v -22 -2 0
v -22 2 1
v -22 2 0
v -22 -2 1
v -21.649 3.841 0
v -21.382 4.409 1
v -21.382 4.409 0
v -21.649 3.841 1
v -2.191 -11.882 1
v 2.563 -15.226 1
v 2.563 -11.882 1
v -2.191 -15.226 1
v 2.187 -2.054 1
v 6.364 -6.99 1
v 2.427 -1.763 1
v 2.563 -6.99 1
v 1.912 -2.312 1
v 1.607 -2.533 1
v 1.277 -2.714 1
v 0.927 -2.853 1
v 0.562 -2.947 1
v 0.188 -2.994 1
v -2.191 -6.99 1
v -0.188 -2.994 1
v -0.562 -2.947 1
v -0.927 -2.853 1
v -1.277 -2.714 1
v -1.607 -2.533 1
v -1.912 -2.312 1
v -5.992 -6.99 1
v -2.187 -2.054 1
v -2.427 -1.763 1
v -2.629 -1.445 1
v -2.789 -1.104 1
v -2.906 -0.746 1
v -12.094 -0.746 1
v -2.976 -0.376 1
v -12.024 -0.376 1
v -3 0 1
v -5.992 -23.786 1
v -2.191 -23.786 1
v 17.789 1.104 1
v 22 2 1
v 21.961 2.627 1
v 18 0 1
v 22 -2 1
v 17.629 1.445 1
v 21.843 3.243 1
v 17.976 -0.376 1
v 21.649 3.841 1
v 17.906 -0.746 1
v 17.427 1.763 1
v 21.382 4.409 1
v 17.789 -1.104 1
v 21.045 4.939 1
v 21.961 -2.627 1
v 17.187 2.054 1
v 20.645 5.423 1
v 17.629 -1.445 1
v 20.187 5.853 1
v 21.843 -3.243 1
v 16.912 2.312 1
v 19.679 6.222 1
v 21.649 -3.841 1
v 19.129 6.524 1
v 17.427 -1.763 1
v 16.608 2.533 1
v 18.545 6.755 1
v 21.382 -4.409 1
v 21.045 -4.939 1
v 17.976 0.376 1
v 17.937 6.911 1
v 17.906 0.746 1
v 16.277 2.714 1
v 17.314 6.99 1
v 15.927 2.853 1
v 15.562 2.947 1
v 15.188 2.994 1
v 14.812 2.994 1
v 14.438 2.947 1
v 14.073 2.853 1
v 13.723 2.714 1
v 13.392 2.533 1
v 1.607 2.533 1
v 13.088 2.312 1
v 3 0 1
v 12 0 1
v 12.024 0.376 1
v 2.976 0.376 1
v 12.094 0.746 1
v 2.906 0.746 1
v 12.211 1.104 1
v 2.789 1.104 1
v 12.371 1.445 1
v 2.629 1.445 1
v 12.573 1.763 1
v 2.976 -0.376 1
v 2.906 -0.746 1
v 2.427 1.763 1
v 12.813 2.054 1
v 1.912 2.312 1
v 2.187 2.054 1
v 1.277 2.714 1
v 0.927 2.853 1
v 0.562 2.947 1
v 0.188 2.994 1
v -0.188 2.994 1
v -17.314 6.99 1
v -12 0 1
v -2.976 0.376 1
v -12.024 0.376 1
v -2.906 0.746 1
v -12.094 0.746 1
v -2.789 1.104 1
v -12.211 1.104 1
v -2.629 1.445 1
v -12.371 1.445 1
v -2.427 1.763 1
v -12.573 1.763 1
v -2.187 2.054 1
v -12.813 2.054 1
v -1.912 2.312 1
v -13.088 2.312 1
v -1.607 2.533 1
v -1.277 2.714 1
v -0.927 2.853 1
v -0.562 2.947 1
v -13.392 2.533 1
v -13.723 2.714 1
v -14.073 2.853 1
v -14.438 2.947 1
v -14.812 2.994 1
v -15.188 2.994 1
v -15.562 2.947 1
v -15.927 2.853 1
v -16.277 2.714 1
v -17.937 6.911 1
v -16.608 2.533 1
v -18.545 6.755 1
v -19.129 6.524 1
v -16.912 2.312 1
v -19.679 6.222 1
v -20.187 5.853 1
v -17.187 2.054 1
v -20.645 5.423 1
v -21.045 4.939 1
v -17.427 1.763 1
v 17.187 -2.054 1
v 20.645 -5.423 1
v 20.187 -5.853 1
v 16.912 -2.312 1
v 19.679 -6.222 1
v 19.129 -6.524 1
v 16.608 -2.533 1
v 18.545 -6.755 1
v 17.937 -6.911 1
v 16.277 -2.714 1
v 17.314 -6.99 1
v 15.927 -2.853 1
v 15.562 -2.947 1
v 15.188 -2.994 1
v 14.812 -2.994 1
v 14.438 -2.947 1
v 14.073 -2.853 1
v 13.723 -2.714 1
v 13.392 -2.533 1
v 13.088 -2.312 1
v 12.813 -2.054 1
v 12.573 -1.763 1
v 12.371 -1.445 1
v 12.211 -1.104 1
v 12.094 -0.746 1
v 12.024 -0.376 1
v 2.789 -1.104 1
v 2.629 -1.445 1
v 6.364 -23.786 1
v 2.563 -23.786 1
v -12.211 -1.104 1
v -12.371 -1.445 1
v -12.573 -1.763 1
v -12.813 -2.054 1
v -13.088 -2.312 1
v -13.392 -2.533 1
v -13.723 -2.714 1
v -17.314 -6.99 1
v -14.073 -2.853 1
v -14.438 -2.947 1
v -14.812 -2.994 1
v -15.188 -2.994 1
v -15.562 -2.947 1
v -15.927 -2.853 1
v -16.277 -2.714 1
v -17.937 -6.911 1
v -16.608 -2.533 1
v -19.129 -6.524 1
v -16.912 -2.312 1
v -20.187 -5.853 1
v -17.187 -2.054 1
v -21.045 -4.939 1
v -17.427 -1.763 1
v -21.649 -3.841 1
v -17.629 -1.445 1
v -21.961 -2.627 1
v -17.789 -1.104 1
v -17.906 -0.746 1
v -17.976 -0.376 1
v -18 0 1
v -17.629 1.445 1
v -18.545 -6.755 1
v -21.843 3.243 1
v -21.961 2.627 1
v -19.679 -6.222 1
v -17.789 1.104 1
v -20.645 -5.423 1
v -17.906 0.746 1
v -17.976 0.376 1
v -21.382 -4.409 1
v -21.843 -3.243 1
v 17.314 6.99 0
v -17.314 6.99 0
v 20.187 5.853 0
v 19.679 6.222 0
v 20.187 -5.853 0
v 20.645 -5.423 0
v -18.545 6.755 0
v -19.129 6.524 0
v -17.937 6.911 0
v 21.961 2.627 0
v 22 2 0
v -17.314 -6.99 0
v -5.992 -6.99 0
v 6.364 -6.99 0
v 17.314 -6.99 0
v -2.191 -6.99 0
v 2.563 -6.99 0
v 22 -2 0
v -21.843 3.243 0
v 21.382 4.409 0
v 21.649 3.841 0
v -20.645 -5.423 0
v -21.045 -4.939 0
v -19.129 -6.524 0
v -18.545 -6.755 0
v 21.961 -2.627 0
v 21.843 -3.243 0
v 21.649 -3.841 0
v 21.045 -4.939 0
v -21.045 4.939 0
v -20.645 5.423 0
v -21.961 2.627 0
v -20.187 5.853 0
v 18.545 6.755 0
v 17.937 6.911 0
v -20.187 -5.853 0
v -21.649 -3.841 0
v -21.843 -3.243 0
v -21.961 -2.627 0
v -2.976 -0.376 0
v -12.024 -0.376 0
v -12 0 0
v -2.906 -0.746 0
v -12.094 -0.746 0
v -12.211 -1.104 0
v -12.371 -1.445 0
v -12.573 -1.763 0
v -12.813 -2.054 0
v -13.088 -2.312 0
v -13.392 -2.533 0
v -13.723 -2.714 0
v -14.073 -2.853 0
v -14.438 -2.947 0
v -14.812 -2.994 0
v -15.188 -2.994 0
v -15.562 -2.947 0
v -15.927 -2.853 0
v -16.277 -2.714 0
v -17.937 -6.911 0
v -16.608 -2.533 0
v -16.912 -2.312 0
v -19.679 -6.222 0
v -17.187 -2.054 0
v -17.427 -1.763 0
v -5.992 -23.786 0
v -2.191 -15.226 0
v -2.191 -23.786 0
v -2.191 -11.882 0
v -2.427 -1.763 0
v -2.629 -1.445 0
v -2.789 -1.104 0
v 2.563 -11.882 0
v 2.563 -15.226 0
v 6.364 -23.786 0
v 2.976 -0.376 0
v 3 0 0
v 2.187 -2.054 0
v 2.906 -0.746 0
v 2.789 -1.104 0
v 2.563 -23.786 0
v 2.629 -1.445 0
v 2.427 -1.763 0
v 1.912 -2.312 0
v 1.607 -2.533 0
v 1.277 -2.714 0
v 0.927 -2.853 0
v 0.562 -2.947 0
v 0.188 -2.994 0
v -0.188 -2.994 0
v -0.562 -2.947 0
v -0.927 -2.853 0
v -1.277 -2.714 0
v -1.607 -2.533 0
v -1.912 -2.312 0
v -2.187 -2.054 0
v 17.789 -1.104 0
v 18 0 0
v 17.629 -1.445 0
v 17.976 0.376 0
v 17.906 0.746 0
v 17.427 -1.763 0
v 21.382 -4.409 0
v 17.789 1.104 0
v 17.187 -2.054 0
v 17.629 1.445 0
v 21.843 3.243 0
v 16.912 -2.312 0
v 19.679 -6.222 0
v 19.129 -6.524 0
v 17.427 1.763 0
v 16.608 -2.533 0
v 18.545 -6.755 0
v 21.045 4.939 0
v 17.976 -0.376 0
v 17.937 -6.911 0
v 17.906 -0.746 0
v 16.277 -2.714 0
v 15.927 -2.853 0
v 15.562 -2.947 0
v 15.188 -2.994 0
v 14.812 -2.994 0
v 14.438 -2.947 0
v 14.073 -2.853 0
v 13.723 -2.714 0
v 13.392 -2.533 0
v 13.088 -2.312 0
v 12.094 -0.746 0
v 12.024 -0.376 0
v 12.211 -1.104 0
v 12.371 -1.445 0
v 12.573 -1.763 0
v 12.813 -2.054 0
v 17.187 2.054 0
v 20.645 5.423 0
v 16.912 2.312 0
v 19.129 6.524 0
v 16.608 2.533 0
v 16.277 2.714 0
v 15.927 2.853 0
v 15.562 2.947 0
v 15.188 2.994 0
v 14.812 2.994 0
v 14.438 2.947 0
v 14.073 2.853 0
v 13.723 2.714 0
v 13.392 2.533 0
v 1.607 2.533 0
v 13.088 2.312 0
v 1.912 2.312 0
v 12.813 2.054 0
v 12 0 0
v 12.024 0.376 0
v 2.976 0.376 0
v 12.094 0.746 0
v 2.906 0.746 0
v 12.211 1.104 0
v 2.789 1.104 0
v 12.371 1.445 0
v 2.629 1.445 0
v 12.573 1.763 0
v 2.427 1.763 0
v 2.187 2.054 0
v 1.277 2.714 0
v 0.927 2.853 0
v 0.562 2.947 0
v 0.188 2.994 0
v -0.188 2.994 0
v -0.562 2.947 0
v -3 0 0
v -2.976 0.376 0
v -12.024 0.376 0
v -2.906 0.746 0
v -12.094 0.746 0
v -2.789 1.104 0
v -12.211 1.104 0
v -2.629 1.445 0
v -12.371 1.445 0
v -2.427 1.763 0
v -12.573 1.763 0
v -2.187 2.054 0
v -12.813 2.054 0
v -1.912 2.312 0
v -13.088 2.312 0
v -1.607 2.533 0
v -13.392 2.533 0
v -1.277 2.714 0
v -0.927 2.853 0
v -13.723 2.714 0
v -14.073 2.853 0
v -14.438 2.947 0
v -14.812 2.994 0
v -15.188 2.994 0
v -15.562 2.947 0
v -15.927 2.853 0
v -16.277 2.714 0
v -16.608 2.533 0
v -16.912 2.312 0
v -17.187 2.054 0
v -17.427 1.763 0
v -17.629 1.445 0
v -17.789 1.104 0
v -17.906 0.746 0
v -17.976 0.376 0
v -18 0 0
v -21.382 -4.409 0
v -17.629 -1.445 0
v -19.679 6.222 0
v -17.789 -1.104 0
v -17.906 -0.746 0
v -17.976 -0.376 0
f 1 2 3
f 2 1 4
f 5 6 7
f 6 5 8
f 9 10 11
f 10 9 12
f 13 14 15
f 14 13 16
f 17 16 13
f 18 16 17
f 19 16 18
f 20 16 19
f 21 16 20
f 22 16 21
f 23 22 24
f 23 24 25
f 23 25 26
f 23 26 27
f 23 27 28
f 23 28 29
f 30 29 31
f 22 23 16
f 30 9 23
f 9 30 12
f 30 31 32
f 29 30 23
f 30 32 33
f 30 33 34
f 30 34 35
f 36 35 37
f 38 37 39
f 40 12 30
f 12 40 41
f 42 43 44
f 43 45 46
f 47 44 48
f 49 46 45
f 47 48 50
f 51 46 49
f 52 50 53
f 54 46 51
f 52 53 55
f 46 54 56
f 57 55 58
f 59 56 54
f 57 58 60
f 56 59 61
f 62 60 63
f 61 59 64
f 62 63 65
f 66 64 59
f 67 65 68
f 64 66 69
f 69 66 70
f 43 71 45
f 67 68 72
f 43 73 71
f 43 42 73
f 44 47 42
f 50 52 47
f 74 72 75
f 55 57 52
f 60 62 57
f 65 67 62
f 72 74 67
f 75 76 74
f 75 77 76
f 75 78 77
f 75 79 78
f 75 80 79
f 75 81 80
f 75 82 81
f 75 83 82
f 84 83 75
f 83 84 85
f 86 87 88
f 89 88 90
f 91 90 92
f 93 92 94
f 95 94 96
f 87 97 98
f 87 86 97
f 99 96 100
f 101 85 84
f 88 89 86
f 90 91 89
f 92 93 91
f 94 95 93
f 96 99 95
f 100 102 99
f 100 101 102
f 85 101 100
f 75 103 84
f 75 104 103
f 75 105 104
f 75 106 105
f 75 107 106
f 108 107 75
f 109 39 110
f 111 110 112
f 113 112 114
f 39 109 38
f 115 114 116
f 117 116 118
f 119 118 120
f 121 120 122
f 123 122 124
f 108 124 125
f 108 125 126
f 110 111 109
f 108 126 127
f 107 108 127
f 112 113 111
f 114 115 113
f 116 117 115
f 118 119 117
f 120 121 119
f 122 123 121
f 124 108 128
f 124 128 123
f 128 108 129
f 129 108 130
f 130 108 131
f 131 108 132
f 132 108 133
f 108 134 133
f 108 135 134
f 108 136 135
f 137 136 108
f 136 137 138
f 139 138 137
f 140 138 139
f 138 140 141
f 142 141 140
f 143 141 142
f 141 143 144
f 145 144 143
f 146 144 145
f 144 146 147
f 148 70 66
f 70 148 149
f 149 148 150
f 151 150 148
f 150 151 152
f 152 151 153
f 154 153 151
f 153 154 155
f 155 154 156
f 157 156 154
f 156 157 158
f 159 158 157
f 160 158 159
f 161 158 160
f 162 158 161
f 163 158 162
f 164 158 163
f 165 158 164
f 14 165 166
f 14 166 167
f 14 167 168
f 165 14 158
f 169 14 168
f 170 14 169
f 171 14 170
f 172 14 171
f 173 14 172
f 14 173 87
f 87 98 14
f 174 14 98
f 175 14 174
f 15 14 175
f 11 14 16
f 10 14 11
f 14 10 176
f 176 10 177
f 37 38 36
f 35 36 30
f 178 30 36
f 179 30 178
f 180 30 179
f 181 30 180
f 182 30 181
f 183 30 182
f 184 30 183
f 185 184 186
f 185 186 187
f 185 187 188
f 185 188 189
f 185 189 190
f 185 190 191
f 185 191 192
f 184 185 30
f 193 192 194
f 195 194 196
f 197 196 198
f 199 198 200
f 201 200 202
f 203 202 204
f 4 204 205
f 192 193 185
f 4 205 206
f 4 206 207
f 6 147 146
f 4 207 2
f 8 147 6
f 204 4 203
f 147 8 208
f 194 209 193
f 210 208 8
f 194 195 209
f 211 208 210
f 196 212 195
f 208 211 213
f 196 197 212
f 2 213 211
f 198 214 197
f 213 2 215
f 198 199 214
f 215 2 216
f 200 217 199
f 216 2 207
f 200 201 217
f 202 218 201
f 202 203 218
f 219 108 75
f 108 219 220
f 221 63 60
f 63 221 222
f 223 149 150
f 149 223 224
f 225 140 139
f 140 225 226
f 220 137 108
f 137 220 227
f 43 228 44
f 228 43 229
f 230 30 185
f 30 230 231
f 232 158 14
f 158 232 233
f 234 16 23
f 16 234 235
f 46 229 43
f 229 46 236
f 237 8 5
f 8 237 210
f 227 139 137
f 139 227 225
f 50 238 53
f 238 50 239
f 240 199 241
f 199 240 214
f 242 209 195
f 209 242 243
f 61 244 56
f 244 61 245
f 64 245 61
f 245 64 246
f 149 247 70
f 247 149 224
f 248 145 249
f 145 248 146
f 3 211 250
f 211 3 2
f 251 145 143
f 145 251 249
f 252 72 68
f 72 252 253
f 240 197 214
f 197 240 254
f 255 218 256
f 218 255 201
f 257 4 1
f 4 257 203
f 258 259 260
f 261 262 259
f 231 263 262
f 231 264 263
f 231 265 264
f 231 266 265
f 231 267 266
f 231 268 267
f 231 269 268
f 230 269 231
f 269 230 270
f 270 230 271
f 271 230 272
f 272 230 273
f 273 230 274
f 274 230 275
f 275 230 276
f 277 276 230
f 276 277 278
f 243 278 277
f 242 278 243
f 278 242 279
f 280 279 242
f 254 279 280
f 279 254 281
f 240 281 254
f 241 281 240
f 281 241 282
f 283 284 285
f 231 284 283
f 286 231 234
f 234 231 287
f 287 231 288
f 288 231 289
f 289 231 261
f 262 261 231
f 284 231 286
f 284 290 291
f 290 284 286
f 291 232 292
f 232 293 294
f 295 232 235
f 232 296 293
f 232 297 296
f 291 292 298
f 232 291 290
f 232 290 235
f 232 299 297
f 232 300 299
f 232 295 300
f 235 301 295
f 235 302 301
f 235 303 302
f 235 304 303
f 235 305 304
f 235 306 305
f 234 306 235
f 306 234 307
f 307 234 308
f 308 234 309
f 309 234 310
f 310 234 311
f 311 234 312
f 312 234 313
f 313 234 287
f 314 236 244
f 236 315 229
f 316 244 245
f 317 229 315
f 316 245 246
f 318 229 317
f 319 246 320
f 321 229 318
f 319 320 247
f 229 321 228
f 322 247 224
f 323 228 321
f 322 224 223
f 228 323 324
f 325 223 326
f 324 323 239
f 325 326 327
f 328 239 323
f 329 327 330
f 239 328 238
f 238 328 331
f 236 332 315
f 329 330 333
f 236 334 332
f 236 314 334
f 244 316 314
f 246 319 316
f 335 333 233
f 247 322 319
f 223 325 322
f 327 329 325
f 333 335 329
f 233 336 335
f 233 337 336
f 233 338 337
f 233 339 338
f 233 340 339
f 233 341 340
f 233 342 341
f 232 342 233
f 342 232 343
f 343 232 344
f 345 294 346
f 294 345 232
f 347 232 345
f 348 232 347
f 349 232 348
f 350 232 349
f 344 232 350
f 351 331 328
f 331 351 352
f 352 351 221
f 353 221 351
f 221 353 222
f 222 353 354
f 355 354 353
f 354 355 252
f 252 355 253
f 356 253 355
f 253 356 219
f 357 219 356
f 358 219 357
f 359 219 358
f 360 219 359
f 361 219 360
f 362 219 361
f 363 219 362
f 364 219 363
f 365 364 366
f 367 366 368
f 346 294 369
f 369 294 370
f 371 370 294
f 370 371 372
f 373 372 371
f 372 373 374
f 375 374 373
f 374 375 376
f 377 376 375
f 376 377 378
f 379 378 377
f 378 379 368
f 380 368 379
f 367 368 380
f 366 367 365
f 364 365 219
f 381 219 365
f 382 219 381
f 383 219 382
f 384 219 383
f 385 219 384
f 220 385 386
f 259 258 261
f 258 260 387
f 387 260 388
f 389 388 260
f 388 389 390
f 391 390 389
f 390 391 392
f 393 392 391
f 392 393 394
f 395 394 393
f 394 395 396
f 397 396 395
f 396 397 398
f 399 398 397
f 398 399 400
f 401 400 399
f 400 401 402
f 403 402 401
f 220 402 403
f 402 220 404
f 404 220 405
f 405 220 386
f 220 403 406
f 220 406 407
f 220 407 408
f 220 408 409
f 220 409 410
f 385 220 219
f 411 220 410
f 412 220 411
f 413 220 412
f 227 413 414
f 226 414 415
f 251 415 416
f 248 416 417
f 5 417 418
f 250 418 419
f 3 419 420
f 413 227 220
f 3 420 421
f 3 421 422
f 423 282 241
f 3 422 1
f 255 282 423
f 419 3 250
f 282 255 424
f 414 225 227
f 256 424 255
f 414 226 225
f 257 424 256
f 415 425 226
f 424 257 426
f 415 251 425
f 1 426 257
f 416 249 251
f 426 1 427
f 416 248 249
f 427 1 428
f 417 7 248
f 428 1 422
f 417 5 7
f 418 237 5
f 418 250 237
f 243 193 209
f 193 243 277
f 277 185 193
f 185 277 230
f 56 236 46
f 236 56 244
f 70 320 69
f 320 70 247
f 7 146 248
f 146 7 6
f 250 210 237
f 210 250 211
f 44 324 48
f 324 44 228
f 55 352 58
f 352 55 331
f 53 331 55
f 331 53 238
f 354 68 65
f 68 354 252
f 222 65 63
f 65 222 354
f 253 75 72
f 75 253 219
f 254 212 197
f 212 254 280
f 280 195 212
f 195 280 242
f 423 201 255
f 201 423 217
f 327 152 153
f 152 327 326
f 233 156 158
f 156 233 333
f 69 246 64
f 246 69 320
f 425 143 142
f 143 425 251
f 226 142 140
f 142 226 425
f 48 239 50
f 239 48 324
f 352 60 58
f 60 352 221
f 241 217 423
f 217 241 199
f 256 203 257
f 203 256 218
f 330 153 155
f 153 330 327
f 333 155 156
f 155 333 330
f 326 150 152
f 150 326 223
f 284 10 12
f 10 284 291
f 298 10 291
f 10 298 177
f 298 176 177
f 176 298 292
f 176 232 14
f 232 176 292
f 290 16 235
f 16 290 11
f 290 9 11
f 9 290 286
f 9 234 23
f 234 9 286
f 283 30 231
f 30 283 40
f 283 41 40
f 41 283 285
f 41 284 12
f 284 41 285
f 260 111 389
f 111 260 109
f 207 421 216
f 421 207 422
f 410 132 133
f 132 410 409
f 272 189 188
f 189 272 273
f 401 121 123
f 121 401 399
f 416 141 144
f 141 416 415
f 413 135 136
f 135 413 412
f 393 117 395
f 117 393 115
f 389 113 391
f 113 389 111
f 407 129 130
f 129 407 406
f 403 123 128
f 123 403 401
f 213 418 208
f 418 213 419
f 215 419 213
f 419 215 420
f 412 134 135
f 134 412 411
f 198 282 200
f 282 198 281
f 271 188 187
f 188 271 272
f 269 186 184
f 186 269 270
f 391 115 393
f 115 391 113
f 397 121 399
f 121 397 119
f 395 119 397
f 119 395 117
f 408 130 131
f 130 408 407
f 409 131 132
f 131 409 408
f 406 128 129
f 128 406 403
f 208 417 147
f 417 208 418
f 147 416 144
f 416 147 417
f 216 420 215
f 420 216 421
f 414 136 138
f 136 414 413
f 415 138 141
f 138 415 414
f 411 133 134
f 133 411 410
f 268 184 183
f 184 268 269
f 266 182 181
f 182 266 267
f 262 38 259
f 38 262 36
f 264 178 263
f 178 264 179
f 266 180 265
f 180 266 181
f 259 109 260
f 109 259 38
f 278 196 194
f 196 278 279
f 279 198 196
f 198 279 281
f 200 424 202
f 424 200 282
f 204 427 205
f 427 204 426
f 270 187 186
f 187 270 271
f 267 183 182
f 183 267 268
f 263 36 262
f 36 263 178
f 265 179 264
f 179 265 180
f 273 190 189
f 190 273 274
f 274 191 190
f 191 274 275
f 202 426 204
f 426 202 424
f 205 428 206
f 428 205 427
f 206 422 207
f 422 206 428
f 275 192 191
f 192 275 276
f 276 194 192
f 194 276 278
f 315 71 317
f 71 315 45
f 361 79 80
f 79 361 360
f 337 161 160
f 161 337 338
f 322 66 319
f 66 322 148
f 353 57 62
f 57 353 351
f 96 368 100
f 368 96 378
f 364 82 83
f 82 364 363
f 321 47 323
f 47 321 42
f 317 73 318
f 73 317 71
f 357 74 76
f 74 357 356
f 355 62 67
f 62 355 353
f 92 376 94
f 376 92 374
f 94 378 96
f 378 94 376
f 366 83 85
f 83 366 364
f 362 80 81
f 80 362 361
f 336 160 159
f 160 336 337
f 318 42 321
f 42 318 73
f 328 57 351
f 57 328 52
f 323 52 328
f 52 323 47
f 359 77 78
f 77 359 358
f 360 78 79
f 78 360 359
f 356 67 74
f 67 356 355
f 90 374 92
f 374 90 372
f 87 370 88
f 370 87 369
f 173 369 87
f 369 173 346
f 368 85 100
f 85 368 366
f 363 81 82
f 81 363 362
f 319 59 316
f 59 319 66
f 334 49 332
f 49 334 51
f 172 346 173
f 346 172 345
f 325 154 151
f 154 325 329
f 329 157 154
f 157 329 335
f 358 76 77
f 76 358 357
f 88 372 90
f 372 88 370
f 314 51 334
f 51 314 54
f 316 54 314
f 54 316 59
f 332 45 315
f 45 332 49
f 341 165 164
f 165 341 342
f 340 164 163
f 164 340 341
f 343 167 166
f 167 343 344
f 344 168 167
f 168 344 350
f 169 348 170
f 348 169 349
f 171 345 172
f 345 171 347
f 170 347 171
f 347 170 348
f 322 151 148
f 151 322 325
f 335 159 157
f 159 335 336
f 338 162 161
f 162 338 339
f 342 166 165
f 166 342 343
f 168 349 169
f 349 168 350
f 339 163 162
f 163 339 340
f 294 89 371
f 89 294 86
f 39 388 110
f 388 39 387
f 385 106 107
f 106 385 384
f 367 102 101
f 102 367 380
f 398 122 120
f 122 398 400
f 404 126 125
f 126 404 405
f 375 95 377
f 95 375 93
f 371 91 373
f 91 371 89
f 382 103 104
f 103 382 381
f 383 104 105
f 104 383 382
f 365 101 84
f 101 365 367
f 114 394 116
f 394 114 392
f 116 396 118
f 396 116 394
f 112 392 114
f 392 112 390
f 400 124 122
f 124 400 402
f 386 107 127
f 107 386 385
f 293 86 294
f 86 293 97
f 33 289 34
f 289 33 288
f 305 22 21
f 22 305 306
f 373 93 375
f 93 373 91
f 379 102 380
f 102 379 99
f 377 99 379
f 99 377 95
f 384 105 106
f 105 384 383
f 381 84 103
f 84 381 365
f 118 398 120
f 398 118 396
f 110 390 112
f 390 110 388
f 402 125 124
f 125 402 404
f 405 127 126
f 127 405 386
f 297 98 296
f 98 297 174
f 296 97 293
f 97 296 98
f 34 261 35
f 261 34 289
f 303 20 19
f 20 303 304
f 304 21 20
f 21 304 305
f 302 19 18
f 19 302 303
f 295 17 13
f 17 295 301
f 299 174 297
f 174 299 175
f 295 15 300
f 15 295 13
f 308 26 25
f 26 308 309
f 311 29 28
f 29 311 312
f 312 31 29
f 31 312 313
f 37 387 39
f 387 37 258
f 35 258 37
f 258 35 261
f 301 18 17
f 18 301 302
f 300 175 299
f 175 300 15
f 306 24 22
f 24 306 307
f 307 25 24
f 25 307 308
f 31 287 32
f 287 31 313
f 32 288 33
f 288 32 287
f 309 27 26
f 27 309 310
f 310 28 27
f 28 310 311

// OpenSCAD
$fn = 50;


difference() {
	union() {
		translate(v = [0, 0, 0]) {
			rotate(a = [0, 0, 0]) {
				hull() {
					translate(v = [-17.0000000000, 2.0000000000, 0]) {
						rotate(a = [0, 0, 0]) {
							translate(v = [0, 0, 0]) {
								rotate(a = [0, 0, 0]) {
									cylinder(h = 1, r = 5);
								}
							}
						}
					}
					translate(v = [17.0000000000, 2.0000000000, 0]) {
						rotate(a = [0, 0, 0]) {
							translate(v = [0, 0, 0]) {
								rotate(a = [0, 0, 0]) {
									cylinder(h = 1, r = 5);
								}
							}
						}
					}
					translate(v = [-17.0000000000, -2.0000000000, 0]) {
						rotate(a = [0, 0, 0]) {
							translate(v = [0, 0, 0]) {
								rotate(a = [0, 0, 0]) {
									cylinder(h = 1, r = 5);
								}
							}
						}
					}
					translate(v = [17.0000000000, -2.0000000000, 0]) {
						rotate(a = [0, 0, 0]) {
							translate(v = [0, 0, 0]) {
								rotate(a = [0, 0, 0]) {
									cylinder(h = 1, r = 5);
								}
							}
						}
					}
				}
			}
		}
		translate(v = [0, -5, 0]) {
			rotate(a = [0, 0, 0]) {
				linear_extrude(height = 1) {
					text(font = "DejaVu Sans Mono:style=Bold", halign = "center", size = 19.0000000000, text = "H", valign = "top");
				}
			}
		}
	}
	union() {
		translate(v = [-15.0000000000, 0.0000000000, -125.0000000000]) {
			rotate(a = [0, 0, 0]) {
				cylinder(h = 250, r = 3.0000000000);
			}
		}
		translate(v = [15.0000000000, 0.0000000000, -125.0000000000]) {
			rotate(a = [0, 0, 0]) {
				cylinder(h = 250, r = 3.0000000000);
			}
		}
		translate(v = [15.0000000000, 0.0000000000, -125.0000000000]) {
			rotate(a = [0, 0, 0]) {
				cylinder(h = 250, r = 3.0000000000);
			}
		}
		translate(v = [0, 0, -125.0000000000]) {
			rotate(a = [0, 0, 0]) {
				cylinder(h = 250, r = 3.0000000000);
			}
		}
	}
}
